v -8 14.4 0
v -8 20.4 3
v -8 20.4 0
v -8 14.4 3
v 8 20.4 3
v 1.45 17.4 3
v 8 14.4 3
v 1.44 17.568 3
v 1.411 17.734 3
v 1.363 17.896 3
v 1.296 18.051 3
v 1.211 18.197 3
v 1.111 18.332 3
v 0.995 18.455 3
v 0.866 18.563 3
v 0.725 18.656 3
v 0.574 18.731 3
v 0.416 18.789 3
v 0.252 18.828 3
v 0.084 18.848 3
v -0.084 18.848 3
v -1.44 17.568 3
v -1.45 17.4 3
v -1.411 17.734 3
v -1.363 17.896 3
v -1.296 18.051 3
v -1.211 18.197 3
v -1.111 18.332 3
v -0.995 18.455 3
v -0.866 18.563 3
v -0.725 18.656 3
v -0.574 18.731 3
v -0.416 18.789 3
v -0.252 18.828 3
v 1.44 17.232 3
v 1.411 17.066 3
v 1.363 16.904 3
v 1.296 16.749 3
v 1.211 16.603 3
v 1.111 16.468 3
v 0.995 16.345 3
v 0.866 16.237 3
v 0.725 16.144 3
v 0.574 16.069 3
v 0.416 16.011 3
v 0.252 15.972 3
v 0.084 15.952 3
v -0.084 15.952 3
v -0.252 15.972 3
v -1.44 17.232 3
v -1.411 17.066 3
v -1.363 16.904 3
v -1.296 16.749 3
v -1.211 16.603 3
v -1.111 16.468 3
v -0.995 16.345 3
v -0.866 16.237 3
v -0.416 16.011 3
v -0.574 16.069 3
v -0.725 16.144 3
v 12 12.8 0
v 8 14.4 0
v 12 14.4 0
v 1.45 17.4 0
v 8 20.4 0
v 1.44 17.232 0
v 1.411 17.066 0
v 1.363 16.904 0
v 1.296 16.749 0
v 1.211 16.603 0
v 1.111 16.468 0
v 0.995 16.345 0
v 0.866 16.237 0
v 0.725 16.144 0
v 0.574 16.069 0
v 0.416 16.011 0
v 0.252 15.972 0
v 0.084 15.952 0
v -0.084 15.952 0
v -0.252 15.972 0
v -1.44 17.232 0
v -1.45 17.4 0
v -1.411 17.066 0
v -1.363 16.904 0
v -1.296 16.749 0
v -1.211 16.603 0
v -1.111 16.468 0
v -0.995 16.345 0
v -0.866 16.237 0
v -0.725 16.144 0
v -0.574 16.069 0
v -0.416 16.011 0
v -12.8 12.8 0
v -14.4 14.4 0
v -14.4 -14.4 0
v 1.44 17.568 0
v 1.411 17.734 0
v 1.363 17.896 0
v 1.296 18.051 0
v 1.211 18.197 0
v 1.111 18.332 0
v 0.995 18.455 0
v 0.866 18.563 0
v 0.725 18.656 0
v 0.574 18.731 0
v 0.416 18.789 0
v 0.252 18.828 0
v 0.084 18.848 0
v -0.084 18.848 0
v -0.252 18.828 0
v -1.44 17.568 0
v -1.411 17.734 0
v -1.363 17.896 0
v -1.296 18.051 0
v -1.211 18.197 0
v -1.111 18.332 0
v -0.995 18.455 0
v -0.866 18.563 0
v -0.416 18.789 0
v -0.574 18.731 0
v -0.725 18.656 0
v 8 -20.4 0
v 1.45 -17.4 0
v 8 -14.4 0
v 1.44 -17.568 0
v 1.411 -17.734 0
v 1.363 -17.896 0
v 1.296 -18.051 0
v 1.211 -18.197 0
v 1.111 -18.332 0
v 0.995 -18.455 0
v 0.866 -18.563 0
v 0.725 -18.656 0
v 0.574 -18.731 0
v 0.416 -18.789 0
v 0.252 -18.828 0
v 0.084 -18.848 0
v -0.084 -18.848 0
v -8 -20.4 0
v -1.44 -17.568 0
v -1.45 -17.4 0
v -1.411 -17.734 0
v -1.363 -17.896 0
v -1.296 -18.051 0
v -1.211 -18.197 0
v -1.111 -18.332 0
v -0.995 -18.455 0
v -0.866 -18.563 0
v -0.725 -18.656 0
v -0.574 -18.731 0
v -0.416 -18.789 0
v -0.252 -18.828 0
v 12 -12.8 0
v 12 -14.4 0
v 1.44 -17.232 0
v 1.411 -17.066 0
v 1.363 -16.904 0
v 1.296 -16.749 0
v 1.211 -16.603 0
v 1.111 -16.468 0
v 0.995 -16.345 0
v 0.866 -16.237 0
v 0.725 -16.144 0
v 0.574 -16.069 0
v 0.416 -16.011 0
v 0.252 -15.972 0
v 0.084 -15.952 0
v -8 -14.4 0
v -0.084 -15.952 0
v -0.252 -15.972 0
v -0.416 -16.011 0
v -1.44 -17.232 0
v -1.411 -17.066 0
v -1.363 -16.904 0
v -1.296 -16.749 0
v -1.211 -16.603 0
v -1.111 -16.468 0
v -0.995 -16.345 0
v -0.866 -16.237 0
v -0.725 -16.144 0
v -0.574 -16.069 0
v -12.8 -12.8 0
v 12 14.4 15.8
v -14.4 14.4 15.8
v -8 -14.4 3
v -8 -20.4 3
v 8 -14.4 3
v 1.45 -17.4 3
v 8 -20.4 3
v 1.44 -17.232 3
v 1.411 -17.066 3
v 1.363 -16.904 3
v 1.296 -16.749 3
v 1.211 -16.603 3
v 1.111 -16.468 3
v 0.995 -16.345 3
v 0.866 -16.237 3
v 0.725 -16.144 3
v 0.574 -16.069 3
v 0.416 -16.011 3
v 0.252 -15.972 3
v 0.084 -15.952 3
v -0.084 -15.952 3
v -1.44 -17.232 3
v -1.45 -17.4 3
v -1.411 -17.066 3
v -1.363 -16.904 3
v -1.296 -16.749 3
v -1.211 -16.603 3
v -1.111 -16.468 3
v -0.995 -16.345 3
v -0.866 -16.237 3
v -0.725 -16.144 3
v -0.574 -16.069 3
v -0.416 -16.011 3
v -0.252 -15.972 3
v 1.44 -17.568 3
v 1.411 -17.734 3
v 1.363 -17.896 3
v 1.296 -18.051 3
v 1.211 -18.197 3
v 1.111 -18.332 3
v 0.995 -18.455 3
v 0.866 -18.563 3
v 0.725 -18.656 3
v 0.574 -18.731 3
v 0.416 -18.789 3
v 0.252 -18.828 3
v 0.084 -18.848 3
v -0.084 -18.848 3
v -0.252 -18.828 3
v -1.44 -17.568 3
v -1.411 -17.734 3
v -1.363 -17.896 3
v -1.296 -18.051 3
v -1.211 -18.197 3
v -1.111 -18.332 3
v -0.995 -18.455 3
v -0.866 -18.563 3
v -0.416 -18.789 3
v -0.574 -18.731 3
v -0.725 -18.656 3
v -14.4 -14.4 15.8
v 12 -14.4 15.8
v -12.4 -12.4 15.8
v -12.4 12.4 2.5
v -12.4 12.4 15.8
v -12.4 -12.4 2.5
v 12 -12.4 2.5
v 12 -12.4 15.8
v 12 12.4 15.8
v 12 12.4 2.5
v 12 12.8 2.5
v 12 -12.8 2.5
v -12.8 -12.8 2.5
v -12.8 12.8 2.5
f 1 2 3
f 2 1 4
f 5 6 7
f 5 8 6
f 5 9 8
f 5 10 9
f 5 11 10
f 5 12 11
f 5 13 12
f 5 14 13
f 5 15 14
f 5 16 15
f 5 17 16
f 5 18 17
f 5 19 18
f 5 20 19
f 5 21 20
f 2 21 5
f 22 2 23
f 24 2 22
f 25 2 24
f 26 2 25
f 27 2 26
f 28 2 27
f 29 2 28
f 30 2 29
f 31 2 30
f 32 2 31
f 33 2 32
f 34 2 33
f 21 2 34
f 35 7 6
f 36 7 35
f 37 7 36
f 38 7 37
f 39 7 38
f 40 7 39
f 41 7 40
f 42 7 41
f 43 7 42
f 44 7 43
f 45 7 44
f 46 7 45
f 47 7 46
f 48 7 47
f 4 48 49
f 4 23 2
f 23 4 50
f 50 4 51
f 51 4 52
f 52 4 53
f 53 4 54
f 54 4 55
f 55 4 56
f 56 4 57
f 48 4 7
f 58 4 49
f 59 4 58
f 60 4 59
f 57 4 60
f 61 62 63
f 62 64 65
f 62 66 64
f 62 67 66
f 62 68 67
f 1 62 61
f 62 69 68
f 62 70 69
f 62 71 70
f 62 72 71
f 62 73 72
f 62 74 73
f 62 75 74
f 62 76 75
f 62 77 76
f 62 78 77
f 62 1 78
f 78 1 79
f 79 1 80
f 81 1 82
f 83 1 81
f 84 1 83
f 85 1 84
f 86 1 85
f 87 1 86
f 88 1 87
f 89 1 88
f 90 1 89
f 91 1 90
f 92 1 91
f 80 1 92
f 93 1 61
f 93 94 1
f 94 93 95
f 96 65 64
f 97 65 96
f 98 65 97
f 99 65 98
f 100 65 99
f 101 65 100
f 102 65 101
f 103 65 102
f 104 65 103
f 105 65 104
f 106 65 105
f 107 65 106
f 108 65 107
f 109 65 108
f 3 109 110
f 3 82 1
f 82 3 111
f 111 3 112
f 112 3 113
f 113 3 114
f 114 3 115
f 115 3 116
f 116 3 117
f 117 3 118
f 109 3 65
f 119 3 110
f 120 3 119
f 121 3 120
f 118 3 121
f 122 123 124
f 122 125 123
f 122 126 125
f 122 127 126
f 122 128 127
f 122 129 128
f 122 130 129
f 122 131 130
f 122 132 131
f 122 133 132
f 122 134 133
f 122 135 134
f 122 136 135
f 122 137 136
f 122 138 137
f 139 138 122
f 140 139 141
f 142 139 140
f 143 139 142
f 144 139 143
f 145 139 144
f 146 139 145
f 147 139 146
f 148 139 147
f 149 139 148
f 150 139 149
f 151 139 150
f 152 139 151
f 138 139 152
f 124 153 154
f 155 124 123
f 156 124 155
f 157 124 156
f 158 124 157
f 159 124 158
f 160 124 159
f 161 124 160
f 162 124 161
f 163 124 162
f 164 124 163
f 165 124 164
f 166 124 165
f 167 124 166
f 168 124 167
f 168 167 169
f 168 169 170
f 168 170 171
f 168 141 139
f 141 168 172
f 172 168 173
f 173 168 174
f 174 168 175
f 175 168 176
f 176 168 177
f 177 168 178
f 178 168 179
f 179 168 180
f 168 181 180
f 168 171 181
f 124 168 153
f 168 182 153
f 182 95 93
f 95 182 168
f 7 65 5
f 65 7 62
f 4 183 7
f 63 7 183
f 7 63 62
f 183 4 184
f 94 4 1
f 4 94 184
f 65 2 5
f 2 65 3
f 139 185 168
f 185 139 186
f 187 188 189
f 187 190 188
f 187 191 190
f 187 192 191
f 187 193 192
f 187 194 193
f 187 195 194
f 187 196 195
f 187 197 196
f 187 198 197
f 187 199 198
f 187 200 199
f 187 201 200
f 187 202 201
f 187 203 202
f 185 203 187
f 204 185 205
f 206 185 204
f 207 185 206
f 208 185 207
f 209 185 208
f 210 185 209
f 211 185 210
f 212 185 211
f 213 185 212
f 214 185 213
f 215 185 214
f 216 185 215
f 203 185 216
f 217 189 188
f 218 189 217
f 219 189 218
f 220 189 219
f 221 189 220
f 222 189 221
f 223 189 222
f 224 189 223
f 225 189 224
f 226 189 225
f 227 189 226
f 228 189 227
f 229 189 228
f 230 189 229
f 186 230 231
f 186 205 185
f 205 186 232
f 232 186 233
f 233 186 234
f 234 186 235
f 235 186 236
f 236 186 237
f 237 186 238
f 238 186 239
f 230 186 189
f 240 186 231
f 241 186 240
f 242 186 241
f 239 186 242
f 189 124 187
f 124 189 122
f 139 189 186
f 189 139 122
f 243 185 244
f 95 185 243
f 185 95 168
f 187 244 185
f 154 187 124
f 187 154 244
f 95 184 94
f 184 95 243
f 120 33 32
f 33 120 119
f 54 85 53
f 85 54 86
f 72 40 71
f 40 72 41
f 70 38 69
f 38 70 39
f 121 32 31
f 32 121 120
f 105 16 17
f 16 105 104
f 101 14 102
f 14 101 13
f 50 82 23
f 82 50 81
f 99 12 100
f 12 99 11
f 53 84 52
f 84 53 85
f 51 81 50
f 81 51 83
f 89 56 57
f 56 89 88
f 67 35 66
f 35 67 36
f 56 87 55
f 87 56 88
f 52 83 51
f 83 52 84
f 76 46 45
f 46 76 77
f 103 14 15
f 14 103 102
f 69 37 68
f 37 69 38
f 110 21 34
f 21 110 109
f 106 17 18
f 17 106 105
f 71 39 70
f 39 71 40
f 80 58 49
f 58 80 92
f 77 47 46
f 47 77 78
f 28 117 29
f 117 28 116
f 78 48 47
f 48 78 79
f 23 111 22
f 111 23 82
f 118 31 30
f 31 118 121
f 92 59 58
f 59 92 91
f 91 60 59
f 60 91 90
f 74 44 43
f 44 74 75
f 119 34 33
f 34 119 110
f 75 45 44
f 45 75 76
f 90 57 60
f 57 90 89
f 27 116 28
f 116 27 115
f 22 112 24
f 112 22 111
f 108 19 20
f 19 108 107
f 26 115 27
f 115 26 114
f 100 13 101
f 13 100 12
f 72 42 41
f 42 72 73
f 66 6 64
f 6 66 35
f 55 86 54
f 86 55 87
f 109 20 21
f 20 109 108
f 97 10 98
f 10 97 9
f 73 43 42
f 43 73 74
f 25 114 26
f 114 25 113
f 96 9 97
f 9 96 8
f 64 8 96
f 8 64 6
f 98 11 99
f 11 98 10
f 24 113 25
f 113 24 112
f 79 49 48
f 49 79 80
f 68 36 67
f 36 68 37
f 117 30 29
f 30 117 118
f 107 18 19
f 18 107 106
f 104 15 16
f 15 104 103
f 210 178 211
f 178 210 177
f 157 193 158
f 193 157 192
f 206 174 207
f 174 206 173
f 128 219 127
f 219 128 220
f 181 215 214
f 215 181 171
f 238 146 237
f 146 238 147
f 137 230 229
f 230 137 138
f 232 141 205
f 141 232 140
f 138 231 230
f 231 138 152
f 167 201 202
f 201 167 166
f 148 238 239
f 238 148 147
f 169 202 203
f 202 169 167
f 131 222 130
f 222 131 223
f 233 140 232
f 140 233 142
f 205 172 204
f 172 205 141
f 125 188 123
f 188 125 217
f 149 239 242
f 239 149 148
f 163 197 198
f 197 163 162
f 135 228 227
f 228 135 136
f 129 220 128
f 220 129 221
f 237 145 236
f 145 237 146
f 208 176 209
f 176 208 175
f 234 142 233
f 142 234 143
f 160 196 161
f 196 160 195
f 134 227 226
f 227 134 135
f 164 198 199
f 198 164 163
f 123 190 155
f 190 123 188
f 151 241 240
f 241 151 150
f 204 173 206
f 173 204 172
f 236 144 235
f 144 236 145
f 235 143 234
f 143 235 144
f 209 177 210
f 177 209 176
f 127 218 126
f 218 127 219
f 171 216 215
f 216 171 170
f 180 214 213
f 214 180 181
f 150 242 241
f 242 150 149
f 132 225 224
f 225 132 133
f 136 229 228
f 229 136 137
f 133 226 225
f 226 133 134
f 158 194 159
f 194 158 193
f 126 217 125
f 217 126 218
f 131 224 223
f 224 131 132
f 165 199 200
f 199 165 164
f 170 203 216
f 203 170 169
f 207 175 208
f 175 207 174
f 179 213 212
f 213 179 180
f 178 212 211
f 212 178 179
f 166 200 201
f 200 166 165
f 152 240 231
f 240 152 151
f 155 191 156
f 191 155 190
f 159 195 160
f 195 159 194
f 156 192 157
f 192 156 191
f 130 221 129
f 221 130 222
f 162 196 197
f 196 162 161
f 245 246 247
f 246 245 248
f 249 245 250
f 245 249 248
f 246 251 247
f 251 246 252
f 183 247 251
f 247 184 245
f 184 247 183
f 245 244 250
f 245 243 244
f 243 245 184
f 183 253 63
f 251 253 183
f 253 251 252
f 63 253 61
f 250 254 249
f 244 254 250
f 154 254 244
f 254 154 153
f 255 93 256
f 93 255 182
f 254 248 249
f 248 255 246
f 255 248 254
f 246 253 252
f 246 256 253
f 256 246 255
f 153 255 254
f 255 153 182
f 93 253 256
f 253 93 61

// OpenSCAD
// Printable down-facing camera holder only.

use <chassis_n20.scad>;

render_chassis_variant("printable_down_camera_mount", 12);
